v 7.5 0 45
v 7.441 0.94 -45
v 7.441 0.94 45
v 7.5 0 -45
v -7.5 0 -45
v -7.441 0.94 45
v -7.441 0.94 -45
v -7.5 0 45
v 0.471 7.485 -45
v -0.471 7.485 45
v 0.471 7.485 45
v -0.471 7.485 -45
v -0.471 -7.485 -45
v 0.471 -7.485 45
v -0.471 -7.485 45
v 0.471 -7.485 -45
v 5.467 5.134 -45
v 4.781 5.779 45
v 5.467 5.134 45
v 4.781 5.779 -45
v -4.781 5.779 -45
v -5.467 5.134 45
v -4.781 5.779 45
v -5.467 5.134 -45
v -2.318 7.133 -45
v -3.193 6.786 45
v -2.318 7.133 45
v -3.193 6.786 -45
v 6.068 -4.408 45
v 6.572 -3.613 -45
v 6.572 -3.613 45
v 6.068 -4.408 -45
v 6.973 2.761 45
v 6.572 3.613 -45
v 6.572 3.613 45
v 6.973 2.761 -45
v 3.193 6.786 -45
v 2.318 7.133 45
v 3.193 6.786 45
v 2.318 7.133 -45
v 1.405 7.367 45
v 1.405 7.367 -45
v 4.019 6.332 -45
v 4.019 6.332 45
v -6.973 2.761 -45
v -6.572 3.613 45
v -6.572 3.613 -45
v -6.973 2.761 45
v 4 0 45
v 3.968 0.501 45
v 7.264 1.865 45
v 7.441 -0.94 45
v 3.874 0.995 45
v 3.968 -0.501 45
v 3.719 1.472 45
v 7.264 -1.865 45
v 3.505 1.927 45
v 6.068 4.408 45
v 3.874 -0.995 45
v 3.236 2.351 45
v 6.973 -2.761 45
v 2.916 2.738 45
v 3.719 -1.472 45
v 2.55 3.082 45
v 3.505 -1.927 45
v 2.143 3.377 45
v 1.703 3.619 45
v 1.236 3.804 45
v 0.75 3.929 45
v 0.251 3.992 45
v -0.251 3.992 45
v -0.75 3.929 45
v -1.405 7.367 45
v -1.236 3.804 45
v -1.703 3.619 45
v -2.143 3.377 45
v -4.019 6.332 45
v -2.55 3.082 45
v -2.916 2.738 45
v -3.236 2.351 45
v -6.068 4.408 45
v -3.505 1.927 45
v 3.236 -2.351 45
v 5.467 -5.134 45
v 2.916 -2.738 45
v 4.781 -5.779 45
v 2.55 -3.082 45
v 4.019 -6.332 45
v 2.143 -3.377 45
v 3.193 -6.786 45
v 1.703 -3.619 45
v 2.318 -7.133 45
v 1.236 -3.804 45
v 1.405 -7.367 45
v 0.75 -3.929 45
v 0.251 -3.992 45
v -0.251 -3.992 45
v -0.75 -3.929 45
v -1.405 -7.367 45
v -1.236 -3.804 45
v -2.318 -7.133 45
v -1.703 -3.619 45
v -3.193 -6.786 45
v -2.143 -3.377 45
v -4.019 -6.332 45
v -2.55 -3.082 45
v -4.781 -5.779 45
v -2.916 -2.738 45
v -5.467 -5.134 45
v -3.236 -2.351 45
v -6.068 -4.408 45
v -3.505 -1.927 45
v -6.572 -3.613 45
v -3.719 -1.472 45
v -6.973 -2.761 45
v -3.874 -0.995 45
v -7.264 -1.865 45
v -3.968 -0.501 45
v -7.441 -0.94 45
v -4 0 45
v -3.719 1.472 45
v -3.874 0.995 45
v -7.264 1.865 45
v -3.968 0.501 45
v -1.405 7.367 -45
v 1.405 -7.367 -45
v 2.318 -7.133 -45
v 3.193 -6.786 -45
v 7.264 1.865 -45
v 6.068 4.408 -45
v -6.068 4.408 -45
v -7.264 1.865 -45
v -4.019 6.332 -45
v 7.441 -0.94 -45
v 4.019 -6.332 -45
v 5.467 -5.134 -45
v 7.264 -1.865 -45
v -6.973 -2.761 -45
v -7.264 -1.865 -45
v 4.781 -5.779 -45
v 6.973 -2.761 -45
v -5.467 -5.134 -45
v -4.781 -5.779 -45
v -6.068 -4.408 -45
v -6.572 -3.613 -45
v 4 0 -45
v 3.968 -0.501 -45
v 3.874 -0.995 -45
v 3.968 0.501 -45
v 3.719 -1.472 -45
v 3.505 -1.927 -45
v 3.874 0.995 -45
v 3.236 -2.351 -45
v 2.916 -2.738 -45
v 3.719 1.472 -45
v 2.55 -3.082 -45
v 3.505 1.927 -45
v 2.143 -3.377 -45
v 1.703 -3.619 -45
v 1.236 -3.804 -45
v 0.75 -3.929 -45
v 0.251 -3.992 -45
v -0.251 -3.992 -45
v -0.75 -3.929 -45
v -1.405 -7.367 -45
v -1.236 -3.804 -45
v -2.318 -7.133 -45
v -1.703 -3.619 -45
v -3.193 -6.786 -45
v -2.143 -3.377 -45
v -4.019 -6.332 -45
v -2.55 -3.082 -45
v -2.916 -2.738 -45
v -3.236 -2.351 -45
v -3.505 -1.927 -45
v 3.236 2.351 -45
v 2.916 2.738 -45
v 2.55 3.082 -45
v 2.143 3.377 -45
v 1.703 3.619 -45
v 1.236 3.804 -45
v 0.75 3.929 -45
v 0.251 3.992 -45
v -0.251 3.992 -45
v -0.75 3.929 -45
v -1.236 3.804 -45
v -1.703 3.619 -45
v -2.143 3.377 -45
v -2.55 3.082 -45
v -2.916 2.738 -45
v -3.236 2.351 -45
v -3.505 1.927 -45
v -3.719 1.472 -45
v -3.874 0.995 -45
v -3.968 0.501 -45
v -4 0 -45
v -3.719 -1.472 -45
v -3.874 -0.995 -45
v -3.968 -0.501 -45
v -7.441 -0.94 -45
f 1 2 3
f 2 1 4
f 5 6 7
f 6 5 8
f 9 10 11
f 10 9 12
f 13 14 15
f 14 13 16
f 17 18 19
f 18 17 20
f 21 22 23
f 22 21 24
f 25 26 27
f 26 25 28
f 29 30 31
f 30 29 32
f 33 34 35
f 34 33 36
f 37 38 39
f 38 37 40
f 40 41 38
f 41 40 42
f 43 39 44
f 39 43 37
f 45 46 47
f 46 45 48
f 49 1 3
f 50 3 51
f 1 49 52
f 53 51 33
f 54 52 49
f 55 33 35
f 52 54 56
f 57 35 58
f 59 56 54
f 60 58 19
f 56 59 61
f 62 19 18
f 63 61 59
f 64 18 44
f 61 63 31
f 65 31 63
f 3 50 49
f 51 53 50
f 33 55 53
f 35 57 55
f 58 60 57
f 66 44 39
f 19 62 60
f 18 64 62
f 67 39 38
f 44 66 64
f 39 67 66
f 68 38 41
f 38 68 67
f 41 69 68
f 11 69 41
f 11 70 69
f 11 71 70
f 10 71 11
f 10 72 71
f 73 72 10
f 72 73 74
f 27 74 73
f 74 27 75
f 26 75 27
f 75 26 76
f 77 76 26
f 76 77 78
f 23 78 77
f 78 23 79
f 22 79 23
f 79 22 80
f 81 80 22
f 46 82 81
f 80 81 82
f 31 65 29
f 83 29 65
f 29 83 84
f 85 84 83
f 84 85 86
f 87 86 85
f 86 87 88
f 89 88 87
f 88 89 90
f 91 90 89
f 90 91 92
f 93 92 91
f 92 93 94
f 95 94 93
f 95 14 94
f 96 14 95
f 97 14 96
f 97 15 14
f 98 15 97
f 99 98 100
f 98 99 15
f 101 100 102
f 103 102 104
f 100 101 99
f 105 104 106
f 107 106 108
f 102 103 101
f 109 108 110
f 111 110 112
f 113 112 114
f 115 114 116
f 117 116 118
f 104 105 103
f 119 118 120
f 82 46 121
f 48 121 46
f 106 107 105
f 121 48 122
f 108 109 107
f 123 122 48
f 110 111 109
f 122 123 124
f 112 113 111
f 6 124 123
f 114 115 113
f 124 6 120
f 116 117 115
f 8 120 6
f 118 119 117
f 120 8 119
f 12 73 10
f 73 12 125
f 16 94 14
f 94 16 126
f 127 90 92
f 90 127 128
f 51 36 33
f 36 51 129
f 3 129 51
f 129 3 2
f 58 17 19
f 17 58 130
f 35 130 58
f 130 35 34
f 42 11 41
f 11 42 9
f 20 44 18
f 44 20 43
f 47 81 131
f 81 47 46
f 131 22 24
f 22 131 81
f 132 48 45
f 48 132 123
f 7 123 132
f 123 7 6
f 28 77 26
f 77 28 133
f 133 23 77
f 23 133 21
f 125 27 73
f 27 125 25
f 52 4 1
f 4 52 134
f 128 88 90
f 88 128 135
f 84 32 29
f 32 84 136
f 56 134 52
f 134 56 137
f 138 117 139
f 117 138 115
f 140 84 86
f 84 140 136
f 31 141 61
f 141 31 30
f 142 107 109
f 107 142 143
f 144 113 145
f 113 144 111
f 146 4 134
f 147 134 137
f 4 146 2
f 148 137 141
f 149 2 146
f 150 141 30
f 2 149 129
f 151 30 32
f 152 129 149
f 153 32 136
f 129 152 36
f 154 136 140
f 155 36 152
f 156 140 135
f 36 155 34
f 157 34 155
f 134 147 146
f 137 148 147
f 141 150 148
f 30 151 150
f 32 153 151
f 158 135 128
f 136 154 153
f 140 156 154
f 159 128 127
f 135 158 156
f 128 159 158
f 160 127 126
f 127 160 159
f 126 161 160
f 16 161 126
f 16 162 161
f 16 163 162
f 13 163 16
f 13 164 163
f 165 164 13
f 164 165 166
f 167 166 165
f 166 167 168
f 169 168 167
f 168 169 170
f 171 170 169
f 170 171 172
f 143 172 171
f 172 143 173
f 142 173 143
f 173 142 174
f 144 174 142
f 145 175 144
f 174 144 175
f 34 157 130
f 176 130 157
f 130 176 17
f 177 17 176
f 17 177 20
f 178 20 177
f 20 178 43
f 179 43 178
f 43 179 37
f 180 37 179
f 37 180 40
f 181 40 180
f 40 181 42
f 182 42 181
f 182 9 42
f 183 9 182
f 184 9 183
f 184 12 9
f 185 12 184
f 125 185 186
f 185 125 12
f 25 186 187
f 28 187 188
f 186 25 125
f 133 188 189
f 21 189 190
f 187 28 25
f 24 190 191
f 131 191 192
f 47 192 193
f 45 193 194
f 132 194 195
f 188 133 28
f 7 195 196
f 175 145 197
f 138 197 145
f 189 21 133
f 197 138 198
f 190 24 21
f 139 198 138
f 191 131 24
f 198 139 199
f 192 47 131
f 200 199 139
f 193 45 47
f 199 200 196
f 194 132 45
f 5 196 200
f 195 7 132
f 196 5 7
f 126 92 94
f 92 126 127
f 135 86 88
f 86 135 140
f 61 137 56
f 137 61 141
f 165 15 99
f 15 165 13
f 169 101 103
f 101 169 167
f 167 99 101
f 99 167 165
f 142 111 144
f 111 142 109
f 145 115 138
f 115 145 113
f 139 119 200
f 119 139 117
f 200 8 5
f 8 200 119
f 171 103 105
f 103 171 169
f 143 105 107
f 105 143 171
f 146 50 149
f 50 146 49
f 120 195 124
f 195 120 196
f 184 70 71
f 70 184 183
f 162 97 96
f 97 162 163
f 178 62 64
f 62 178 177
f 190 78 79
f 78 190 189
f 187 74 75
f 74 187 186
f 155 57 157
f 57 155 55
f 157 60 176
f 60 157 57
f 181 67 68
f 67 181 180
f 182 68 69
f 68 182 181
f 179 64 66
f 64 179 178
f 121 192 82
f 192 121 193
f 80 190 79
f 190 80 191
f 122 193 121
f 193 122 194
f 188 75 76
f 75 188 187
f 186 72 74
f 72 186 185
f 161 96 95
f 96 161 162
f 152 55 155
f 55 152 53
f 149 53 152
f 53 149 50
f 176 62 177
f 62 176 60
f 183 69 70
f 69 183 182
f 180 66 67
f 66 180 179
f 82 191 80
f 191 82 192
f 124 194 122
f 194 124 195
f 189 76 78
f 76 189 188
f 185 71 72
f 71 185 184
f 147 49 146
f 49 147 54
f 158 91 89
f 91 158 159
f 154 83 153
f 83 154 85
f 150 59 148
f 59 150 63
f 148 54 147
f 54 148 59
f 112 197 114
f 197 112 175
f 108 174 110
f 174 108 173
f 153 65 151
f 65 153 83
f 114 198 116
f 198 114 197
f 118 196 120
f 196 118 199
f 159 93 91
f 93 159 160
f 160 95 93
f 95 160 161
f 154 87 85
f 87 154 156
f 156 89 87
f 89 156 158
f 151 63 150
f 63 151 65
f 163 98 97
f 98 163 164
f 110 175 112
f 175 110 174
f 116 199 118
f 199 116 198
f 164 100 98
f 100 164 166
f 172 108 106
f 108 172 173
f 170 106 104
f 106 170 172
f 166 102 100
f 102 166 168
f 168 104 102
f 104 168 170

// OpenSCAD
$fn = 50;


difference() {
	union() {
		translate(v = [0, 0, -45.0000000000]) {
			cylinder(h = 90, r = 7.5000000000);
		}
	}
	union() {
		translate(v = [0, 0, -100.0000000000]) {
			cylinder(h = 200, r = 4.0000000000);
		}
	}
}
